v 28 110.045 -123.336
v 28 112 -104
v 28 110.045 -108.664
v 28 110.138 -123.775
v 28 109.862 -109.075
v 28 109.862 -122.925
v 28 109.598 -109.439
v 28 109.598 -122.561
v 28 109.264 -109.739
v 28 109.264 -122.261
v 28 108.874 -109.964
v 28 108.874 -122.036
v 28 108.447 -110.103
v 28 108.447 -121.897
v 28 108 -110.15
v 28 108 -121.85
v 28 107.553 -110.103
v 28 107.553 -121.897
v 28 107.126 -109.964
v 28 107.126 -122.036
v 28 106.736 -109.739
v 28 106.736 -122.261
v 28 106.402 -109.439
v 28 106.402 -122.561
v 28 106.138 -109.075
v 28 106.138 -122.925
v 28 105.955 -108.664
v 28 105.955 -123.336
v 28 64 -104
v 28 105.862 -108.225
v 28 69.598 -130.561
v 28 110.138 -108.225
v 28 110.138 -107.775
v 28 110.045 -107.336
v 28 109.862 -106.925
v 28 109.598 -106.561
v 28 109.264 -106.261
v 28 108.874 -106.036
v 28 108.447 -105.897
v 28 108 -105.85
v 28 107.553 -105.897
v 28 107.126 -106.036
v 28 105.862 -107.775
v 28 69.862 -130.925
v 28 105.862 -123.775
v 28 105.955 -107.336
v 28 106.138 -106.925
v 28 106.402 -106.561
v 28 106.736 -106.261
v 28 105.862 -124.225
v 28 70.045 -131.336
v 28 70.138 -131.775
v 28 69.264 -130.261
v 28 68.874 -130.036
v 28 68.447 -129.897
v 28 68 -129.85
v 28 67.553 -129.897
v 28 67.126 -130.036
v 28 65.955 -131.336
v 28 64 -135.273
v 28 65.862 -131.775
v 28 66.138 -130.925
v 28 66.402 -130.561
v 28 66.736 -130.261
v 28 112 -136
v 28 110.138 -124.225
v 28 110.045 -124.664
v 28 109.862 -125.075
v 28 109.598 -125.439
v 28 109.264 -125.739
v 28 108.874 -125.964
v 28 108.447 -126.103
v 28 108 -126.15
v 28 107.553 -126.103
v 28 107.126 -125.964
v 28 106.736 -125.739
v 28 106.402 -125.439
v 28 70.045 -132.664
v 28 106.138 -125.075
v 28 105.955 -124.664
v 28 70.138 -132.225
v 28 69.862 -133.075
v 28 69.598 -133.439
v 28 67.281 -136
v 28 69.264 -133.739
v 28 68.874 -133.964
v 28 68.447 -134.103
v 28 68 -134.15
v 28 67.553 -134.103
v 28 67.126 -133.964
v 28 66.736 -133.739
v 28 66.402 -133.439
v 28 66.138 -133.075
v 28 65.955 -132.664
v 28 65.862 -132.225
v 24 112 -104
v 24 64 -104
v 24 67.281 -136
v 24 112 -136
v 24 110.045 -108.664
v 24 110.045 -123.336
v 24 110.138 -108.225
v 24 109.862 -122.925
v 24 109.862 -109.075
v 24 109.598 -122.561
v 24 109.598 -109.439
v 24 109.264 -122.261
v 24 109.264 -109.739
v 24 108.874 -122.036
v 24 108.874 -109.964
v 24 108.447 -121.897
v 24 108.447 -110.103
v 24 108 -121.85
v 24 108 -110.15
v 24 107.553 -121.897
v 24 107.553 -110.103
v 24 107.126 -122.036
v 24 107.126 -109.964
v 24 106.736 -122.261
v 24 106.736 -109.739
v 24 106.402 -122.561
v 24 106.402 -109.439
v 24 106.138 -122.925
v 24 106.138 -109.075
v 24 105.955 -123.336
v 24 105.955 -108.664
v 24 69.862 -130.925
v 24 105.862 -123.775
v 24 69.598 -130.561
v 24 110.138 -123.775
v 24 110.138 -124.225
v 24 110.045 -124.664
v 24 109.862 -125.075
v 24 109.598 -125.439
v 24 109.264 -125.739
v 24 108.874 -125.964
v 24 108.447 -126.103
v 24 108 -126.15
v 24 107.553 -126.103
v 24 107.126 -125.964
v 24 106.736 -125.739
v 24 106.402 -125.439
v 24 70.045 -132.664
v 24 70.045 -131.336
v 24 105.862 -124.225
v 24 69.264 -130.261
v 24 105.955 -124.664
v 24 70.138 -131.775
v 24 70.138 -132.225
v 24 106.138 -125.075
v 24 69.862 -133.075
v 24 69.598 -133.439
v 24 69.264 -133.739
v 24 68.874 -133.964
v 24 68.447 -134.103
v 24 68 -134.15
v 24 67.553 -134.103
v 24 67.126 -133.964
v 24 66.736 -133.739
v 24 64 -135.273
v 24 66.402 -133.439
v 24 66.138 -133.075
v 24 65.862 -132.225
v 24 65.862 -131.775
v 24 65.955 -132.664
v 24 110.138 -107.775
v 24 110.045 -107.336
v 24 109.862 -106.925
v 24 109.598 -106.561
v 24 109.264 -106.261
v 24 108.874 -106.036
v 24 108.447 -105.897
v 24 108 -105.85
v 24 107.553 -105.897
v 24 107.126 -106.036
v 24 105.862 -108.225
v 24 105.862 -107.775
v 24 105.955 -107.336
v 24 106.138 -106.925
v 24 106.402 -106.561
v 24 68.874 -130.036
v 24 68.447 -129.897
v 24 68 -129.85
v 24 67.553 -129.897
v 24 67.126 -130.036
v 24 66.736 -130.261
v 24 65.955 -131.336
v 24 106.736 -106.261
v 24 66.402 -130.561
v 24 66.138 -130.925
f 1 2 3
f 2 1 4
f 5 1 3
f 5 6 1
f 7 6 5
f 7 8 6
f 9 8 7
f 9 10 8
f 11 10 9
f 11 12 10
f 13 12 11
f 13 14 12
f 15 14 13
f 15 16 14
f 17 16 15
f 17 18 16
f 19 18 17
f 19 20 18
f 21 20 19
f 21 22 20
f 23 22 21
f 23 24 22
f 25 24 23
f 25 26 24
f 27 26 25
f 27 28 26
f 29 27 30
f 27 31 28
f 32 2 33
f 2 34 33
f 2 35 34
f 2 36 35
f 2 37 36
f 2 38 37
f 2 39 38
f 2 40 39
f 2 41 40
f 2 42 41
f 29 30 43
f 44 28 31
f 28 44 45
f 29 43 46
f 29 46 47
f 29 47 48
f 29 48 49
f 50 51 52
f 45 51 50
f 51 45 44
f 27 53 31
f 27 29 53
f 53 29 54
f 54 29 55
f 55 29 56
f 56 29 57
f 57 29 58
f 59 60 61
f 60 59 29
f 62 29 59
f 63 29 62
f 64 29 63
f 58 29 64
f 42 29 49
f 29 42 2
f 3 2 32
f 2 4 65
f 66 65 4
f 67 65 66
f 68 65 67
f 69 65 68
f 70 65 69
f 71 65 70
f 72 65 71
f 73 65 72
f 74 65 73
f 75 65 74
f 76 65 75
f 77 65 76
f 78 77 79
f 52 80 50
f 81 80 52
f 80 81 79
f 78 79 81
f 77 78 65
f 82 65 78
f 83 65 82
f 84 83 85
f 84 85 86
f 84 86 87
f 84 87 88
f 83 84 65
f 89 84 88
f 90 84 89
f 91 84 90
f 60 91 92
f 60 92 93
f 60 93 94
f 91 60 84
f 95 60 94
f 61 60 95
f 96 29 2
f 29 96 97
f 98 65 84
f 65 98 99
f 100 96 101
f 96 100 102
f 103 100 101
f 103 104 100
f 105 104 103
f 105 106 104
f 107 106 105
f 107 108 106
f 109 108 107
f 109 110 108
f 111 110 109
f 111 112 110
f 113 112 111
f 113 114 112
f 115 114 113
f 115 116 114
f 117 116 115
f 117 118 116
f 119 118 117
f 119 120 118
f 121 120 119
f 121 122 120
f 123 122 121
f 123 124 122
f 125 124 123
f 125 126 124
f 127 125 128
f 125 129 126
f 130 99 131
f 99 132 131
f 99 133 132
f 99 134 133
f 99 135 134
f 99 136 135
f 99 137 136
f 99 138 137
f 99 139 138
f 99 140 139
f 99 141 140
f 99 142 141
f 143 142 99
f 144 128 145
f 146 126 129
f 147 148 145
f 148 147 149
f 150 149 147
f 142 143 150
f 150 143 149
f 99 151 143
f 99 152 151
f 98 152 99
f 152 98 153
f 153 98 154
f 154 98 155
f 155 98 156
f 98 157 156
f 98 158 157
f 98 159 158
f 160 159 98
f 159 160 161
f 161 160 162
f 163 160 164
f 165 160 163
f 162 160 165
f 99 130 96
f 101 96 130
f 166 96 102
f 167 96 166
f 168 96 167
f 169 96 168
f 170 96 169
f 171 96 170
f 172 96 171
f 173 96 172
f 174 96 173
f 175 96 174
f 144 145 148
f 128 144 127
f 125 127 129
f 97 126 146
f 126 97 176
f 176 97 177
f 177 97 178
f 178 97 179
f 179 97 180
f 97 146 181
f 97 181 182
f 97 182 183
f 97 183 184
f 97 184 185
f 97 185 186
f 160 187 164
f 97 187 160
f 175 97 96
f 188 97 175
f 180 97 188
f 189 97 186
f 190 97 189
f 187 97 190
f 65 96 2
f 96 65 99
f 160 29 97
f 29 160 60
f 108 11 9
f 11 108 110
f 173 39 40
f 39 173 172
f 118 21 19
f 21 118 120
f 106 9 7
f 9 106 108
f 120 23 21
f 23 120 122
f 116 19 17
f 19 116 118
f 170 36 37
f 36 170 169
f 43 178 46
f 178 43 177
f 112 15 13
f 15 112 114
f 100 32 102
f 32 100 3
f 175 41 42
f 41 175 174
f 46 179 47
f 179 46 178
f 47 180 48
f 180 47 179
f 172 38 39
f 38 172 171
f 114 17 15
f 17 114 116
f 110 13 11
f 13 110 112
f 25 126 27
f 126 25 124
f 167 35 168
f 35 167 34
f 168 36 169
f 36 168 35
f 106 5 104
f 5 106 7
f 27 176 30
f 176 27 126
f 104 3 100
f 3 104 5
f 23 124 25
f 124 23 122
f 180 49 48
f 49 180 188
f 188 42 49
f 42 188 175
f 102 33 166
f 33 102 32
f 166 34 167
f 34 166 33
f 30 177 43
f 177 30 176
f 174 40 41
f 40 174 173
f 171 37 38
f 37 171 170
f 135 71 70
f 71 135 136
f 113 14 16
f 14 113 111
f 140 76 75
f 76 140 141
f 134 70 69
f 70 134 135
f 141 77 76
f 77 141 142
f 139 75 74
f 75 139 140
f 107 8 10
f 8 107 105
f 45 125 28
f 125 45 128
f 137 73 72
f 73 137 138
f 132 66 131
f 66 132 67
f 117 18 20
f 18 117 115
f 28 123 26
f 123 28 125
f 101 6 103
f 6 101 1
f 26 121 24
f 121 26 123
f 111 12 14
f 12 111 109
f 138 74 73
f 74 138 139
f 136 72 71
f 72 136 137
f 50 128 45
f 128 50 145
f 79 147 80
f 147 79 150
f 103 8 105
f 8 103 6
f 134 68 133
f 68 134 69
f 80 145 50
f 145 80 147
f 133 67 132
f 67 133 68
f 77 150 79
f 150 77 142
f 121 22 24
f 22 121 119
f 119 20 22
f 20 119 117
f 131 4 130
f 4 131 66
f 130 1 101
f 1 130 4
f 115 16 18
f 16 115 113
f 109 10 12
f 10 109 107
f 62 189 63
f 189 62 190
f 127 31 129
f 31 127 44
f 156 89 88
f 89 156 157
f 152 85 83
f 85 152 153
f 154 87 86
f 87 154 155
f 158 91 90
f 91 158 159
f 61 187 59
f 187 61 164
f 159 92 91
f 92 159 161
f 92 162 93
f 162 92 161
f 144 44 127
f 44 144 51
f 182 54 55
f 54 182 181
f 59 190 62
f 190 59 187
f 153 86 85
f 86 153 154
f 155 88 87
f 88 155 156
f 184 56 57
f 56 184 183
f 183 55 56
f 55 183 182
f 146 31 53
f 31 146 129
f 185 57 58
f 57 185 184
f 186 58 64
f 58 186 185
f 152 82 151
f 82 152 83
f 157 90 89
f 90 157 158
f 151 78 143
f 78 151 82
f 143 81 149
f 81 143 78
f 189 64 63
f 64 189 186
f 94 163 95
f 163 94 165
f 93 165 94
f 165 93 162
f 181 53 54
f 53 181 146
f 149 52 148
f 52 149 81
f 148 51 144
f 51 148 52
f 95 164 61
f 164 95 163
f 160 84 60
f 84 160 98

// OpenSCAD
// bottom GR at the end of left entry bottom exit
difference() {
union() {
    // GR
    translate([24,64,-136])
    cube([4,48,32]);
}
    // top hole
    translate([-4,108,-108])
    rotate([0,90,0])
    cylinder(r=2.15,60, $fn=30);

    // bottom hole
    translate([-4,108,-124])
    rotate([0,90,0])
    cylinder(r=2.15,60, $fn=30);

    // bottom left hole
    translate([-4,68,-132])
    rotate([0,90,0])
    cylinder(r=2.15,60, $fn=30);

    // angled exit
    translate([0,54,-141.25])
    rotate([347.5,0,0])
    cube([40,23,8]);
    //*/
}
//*/
